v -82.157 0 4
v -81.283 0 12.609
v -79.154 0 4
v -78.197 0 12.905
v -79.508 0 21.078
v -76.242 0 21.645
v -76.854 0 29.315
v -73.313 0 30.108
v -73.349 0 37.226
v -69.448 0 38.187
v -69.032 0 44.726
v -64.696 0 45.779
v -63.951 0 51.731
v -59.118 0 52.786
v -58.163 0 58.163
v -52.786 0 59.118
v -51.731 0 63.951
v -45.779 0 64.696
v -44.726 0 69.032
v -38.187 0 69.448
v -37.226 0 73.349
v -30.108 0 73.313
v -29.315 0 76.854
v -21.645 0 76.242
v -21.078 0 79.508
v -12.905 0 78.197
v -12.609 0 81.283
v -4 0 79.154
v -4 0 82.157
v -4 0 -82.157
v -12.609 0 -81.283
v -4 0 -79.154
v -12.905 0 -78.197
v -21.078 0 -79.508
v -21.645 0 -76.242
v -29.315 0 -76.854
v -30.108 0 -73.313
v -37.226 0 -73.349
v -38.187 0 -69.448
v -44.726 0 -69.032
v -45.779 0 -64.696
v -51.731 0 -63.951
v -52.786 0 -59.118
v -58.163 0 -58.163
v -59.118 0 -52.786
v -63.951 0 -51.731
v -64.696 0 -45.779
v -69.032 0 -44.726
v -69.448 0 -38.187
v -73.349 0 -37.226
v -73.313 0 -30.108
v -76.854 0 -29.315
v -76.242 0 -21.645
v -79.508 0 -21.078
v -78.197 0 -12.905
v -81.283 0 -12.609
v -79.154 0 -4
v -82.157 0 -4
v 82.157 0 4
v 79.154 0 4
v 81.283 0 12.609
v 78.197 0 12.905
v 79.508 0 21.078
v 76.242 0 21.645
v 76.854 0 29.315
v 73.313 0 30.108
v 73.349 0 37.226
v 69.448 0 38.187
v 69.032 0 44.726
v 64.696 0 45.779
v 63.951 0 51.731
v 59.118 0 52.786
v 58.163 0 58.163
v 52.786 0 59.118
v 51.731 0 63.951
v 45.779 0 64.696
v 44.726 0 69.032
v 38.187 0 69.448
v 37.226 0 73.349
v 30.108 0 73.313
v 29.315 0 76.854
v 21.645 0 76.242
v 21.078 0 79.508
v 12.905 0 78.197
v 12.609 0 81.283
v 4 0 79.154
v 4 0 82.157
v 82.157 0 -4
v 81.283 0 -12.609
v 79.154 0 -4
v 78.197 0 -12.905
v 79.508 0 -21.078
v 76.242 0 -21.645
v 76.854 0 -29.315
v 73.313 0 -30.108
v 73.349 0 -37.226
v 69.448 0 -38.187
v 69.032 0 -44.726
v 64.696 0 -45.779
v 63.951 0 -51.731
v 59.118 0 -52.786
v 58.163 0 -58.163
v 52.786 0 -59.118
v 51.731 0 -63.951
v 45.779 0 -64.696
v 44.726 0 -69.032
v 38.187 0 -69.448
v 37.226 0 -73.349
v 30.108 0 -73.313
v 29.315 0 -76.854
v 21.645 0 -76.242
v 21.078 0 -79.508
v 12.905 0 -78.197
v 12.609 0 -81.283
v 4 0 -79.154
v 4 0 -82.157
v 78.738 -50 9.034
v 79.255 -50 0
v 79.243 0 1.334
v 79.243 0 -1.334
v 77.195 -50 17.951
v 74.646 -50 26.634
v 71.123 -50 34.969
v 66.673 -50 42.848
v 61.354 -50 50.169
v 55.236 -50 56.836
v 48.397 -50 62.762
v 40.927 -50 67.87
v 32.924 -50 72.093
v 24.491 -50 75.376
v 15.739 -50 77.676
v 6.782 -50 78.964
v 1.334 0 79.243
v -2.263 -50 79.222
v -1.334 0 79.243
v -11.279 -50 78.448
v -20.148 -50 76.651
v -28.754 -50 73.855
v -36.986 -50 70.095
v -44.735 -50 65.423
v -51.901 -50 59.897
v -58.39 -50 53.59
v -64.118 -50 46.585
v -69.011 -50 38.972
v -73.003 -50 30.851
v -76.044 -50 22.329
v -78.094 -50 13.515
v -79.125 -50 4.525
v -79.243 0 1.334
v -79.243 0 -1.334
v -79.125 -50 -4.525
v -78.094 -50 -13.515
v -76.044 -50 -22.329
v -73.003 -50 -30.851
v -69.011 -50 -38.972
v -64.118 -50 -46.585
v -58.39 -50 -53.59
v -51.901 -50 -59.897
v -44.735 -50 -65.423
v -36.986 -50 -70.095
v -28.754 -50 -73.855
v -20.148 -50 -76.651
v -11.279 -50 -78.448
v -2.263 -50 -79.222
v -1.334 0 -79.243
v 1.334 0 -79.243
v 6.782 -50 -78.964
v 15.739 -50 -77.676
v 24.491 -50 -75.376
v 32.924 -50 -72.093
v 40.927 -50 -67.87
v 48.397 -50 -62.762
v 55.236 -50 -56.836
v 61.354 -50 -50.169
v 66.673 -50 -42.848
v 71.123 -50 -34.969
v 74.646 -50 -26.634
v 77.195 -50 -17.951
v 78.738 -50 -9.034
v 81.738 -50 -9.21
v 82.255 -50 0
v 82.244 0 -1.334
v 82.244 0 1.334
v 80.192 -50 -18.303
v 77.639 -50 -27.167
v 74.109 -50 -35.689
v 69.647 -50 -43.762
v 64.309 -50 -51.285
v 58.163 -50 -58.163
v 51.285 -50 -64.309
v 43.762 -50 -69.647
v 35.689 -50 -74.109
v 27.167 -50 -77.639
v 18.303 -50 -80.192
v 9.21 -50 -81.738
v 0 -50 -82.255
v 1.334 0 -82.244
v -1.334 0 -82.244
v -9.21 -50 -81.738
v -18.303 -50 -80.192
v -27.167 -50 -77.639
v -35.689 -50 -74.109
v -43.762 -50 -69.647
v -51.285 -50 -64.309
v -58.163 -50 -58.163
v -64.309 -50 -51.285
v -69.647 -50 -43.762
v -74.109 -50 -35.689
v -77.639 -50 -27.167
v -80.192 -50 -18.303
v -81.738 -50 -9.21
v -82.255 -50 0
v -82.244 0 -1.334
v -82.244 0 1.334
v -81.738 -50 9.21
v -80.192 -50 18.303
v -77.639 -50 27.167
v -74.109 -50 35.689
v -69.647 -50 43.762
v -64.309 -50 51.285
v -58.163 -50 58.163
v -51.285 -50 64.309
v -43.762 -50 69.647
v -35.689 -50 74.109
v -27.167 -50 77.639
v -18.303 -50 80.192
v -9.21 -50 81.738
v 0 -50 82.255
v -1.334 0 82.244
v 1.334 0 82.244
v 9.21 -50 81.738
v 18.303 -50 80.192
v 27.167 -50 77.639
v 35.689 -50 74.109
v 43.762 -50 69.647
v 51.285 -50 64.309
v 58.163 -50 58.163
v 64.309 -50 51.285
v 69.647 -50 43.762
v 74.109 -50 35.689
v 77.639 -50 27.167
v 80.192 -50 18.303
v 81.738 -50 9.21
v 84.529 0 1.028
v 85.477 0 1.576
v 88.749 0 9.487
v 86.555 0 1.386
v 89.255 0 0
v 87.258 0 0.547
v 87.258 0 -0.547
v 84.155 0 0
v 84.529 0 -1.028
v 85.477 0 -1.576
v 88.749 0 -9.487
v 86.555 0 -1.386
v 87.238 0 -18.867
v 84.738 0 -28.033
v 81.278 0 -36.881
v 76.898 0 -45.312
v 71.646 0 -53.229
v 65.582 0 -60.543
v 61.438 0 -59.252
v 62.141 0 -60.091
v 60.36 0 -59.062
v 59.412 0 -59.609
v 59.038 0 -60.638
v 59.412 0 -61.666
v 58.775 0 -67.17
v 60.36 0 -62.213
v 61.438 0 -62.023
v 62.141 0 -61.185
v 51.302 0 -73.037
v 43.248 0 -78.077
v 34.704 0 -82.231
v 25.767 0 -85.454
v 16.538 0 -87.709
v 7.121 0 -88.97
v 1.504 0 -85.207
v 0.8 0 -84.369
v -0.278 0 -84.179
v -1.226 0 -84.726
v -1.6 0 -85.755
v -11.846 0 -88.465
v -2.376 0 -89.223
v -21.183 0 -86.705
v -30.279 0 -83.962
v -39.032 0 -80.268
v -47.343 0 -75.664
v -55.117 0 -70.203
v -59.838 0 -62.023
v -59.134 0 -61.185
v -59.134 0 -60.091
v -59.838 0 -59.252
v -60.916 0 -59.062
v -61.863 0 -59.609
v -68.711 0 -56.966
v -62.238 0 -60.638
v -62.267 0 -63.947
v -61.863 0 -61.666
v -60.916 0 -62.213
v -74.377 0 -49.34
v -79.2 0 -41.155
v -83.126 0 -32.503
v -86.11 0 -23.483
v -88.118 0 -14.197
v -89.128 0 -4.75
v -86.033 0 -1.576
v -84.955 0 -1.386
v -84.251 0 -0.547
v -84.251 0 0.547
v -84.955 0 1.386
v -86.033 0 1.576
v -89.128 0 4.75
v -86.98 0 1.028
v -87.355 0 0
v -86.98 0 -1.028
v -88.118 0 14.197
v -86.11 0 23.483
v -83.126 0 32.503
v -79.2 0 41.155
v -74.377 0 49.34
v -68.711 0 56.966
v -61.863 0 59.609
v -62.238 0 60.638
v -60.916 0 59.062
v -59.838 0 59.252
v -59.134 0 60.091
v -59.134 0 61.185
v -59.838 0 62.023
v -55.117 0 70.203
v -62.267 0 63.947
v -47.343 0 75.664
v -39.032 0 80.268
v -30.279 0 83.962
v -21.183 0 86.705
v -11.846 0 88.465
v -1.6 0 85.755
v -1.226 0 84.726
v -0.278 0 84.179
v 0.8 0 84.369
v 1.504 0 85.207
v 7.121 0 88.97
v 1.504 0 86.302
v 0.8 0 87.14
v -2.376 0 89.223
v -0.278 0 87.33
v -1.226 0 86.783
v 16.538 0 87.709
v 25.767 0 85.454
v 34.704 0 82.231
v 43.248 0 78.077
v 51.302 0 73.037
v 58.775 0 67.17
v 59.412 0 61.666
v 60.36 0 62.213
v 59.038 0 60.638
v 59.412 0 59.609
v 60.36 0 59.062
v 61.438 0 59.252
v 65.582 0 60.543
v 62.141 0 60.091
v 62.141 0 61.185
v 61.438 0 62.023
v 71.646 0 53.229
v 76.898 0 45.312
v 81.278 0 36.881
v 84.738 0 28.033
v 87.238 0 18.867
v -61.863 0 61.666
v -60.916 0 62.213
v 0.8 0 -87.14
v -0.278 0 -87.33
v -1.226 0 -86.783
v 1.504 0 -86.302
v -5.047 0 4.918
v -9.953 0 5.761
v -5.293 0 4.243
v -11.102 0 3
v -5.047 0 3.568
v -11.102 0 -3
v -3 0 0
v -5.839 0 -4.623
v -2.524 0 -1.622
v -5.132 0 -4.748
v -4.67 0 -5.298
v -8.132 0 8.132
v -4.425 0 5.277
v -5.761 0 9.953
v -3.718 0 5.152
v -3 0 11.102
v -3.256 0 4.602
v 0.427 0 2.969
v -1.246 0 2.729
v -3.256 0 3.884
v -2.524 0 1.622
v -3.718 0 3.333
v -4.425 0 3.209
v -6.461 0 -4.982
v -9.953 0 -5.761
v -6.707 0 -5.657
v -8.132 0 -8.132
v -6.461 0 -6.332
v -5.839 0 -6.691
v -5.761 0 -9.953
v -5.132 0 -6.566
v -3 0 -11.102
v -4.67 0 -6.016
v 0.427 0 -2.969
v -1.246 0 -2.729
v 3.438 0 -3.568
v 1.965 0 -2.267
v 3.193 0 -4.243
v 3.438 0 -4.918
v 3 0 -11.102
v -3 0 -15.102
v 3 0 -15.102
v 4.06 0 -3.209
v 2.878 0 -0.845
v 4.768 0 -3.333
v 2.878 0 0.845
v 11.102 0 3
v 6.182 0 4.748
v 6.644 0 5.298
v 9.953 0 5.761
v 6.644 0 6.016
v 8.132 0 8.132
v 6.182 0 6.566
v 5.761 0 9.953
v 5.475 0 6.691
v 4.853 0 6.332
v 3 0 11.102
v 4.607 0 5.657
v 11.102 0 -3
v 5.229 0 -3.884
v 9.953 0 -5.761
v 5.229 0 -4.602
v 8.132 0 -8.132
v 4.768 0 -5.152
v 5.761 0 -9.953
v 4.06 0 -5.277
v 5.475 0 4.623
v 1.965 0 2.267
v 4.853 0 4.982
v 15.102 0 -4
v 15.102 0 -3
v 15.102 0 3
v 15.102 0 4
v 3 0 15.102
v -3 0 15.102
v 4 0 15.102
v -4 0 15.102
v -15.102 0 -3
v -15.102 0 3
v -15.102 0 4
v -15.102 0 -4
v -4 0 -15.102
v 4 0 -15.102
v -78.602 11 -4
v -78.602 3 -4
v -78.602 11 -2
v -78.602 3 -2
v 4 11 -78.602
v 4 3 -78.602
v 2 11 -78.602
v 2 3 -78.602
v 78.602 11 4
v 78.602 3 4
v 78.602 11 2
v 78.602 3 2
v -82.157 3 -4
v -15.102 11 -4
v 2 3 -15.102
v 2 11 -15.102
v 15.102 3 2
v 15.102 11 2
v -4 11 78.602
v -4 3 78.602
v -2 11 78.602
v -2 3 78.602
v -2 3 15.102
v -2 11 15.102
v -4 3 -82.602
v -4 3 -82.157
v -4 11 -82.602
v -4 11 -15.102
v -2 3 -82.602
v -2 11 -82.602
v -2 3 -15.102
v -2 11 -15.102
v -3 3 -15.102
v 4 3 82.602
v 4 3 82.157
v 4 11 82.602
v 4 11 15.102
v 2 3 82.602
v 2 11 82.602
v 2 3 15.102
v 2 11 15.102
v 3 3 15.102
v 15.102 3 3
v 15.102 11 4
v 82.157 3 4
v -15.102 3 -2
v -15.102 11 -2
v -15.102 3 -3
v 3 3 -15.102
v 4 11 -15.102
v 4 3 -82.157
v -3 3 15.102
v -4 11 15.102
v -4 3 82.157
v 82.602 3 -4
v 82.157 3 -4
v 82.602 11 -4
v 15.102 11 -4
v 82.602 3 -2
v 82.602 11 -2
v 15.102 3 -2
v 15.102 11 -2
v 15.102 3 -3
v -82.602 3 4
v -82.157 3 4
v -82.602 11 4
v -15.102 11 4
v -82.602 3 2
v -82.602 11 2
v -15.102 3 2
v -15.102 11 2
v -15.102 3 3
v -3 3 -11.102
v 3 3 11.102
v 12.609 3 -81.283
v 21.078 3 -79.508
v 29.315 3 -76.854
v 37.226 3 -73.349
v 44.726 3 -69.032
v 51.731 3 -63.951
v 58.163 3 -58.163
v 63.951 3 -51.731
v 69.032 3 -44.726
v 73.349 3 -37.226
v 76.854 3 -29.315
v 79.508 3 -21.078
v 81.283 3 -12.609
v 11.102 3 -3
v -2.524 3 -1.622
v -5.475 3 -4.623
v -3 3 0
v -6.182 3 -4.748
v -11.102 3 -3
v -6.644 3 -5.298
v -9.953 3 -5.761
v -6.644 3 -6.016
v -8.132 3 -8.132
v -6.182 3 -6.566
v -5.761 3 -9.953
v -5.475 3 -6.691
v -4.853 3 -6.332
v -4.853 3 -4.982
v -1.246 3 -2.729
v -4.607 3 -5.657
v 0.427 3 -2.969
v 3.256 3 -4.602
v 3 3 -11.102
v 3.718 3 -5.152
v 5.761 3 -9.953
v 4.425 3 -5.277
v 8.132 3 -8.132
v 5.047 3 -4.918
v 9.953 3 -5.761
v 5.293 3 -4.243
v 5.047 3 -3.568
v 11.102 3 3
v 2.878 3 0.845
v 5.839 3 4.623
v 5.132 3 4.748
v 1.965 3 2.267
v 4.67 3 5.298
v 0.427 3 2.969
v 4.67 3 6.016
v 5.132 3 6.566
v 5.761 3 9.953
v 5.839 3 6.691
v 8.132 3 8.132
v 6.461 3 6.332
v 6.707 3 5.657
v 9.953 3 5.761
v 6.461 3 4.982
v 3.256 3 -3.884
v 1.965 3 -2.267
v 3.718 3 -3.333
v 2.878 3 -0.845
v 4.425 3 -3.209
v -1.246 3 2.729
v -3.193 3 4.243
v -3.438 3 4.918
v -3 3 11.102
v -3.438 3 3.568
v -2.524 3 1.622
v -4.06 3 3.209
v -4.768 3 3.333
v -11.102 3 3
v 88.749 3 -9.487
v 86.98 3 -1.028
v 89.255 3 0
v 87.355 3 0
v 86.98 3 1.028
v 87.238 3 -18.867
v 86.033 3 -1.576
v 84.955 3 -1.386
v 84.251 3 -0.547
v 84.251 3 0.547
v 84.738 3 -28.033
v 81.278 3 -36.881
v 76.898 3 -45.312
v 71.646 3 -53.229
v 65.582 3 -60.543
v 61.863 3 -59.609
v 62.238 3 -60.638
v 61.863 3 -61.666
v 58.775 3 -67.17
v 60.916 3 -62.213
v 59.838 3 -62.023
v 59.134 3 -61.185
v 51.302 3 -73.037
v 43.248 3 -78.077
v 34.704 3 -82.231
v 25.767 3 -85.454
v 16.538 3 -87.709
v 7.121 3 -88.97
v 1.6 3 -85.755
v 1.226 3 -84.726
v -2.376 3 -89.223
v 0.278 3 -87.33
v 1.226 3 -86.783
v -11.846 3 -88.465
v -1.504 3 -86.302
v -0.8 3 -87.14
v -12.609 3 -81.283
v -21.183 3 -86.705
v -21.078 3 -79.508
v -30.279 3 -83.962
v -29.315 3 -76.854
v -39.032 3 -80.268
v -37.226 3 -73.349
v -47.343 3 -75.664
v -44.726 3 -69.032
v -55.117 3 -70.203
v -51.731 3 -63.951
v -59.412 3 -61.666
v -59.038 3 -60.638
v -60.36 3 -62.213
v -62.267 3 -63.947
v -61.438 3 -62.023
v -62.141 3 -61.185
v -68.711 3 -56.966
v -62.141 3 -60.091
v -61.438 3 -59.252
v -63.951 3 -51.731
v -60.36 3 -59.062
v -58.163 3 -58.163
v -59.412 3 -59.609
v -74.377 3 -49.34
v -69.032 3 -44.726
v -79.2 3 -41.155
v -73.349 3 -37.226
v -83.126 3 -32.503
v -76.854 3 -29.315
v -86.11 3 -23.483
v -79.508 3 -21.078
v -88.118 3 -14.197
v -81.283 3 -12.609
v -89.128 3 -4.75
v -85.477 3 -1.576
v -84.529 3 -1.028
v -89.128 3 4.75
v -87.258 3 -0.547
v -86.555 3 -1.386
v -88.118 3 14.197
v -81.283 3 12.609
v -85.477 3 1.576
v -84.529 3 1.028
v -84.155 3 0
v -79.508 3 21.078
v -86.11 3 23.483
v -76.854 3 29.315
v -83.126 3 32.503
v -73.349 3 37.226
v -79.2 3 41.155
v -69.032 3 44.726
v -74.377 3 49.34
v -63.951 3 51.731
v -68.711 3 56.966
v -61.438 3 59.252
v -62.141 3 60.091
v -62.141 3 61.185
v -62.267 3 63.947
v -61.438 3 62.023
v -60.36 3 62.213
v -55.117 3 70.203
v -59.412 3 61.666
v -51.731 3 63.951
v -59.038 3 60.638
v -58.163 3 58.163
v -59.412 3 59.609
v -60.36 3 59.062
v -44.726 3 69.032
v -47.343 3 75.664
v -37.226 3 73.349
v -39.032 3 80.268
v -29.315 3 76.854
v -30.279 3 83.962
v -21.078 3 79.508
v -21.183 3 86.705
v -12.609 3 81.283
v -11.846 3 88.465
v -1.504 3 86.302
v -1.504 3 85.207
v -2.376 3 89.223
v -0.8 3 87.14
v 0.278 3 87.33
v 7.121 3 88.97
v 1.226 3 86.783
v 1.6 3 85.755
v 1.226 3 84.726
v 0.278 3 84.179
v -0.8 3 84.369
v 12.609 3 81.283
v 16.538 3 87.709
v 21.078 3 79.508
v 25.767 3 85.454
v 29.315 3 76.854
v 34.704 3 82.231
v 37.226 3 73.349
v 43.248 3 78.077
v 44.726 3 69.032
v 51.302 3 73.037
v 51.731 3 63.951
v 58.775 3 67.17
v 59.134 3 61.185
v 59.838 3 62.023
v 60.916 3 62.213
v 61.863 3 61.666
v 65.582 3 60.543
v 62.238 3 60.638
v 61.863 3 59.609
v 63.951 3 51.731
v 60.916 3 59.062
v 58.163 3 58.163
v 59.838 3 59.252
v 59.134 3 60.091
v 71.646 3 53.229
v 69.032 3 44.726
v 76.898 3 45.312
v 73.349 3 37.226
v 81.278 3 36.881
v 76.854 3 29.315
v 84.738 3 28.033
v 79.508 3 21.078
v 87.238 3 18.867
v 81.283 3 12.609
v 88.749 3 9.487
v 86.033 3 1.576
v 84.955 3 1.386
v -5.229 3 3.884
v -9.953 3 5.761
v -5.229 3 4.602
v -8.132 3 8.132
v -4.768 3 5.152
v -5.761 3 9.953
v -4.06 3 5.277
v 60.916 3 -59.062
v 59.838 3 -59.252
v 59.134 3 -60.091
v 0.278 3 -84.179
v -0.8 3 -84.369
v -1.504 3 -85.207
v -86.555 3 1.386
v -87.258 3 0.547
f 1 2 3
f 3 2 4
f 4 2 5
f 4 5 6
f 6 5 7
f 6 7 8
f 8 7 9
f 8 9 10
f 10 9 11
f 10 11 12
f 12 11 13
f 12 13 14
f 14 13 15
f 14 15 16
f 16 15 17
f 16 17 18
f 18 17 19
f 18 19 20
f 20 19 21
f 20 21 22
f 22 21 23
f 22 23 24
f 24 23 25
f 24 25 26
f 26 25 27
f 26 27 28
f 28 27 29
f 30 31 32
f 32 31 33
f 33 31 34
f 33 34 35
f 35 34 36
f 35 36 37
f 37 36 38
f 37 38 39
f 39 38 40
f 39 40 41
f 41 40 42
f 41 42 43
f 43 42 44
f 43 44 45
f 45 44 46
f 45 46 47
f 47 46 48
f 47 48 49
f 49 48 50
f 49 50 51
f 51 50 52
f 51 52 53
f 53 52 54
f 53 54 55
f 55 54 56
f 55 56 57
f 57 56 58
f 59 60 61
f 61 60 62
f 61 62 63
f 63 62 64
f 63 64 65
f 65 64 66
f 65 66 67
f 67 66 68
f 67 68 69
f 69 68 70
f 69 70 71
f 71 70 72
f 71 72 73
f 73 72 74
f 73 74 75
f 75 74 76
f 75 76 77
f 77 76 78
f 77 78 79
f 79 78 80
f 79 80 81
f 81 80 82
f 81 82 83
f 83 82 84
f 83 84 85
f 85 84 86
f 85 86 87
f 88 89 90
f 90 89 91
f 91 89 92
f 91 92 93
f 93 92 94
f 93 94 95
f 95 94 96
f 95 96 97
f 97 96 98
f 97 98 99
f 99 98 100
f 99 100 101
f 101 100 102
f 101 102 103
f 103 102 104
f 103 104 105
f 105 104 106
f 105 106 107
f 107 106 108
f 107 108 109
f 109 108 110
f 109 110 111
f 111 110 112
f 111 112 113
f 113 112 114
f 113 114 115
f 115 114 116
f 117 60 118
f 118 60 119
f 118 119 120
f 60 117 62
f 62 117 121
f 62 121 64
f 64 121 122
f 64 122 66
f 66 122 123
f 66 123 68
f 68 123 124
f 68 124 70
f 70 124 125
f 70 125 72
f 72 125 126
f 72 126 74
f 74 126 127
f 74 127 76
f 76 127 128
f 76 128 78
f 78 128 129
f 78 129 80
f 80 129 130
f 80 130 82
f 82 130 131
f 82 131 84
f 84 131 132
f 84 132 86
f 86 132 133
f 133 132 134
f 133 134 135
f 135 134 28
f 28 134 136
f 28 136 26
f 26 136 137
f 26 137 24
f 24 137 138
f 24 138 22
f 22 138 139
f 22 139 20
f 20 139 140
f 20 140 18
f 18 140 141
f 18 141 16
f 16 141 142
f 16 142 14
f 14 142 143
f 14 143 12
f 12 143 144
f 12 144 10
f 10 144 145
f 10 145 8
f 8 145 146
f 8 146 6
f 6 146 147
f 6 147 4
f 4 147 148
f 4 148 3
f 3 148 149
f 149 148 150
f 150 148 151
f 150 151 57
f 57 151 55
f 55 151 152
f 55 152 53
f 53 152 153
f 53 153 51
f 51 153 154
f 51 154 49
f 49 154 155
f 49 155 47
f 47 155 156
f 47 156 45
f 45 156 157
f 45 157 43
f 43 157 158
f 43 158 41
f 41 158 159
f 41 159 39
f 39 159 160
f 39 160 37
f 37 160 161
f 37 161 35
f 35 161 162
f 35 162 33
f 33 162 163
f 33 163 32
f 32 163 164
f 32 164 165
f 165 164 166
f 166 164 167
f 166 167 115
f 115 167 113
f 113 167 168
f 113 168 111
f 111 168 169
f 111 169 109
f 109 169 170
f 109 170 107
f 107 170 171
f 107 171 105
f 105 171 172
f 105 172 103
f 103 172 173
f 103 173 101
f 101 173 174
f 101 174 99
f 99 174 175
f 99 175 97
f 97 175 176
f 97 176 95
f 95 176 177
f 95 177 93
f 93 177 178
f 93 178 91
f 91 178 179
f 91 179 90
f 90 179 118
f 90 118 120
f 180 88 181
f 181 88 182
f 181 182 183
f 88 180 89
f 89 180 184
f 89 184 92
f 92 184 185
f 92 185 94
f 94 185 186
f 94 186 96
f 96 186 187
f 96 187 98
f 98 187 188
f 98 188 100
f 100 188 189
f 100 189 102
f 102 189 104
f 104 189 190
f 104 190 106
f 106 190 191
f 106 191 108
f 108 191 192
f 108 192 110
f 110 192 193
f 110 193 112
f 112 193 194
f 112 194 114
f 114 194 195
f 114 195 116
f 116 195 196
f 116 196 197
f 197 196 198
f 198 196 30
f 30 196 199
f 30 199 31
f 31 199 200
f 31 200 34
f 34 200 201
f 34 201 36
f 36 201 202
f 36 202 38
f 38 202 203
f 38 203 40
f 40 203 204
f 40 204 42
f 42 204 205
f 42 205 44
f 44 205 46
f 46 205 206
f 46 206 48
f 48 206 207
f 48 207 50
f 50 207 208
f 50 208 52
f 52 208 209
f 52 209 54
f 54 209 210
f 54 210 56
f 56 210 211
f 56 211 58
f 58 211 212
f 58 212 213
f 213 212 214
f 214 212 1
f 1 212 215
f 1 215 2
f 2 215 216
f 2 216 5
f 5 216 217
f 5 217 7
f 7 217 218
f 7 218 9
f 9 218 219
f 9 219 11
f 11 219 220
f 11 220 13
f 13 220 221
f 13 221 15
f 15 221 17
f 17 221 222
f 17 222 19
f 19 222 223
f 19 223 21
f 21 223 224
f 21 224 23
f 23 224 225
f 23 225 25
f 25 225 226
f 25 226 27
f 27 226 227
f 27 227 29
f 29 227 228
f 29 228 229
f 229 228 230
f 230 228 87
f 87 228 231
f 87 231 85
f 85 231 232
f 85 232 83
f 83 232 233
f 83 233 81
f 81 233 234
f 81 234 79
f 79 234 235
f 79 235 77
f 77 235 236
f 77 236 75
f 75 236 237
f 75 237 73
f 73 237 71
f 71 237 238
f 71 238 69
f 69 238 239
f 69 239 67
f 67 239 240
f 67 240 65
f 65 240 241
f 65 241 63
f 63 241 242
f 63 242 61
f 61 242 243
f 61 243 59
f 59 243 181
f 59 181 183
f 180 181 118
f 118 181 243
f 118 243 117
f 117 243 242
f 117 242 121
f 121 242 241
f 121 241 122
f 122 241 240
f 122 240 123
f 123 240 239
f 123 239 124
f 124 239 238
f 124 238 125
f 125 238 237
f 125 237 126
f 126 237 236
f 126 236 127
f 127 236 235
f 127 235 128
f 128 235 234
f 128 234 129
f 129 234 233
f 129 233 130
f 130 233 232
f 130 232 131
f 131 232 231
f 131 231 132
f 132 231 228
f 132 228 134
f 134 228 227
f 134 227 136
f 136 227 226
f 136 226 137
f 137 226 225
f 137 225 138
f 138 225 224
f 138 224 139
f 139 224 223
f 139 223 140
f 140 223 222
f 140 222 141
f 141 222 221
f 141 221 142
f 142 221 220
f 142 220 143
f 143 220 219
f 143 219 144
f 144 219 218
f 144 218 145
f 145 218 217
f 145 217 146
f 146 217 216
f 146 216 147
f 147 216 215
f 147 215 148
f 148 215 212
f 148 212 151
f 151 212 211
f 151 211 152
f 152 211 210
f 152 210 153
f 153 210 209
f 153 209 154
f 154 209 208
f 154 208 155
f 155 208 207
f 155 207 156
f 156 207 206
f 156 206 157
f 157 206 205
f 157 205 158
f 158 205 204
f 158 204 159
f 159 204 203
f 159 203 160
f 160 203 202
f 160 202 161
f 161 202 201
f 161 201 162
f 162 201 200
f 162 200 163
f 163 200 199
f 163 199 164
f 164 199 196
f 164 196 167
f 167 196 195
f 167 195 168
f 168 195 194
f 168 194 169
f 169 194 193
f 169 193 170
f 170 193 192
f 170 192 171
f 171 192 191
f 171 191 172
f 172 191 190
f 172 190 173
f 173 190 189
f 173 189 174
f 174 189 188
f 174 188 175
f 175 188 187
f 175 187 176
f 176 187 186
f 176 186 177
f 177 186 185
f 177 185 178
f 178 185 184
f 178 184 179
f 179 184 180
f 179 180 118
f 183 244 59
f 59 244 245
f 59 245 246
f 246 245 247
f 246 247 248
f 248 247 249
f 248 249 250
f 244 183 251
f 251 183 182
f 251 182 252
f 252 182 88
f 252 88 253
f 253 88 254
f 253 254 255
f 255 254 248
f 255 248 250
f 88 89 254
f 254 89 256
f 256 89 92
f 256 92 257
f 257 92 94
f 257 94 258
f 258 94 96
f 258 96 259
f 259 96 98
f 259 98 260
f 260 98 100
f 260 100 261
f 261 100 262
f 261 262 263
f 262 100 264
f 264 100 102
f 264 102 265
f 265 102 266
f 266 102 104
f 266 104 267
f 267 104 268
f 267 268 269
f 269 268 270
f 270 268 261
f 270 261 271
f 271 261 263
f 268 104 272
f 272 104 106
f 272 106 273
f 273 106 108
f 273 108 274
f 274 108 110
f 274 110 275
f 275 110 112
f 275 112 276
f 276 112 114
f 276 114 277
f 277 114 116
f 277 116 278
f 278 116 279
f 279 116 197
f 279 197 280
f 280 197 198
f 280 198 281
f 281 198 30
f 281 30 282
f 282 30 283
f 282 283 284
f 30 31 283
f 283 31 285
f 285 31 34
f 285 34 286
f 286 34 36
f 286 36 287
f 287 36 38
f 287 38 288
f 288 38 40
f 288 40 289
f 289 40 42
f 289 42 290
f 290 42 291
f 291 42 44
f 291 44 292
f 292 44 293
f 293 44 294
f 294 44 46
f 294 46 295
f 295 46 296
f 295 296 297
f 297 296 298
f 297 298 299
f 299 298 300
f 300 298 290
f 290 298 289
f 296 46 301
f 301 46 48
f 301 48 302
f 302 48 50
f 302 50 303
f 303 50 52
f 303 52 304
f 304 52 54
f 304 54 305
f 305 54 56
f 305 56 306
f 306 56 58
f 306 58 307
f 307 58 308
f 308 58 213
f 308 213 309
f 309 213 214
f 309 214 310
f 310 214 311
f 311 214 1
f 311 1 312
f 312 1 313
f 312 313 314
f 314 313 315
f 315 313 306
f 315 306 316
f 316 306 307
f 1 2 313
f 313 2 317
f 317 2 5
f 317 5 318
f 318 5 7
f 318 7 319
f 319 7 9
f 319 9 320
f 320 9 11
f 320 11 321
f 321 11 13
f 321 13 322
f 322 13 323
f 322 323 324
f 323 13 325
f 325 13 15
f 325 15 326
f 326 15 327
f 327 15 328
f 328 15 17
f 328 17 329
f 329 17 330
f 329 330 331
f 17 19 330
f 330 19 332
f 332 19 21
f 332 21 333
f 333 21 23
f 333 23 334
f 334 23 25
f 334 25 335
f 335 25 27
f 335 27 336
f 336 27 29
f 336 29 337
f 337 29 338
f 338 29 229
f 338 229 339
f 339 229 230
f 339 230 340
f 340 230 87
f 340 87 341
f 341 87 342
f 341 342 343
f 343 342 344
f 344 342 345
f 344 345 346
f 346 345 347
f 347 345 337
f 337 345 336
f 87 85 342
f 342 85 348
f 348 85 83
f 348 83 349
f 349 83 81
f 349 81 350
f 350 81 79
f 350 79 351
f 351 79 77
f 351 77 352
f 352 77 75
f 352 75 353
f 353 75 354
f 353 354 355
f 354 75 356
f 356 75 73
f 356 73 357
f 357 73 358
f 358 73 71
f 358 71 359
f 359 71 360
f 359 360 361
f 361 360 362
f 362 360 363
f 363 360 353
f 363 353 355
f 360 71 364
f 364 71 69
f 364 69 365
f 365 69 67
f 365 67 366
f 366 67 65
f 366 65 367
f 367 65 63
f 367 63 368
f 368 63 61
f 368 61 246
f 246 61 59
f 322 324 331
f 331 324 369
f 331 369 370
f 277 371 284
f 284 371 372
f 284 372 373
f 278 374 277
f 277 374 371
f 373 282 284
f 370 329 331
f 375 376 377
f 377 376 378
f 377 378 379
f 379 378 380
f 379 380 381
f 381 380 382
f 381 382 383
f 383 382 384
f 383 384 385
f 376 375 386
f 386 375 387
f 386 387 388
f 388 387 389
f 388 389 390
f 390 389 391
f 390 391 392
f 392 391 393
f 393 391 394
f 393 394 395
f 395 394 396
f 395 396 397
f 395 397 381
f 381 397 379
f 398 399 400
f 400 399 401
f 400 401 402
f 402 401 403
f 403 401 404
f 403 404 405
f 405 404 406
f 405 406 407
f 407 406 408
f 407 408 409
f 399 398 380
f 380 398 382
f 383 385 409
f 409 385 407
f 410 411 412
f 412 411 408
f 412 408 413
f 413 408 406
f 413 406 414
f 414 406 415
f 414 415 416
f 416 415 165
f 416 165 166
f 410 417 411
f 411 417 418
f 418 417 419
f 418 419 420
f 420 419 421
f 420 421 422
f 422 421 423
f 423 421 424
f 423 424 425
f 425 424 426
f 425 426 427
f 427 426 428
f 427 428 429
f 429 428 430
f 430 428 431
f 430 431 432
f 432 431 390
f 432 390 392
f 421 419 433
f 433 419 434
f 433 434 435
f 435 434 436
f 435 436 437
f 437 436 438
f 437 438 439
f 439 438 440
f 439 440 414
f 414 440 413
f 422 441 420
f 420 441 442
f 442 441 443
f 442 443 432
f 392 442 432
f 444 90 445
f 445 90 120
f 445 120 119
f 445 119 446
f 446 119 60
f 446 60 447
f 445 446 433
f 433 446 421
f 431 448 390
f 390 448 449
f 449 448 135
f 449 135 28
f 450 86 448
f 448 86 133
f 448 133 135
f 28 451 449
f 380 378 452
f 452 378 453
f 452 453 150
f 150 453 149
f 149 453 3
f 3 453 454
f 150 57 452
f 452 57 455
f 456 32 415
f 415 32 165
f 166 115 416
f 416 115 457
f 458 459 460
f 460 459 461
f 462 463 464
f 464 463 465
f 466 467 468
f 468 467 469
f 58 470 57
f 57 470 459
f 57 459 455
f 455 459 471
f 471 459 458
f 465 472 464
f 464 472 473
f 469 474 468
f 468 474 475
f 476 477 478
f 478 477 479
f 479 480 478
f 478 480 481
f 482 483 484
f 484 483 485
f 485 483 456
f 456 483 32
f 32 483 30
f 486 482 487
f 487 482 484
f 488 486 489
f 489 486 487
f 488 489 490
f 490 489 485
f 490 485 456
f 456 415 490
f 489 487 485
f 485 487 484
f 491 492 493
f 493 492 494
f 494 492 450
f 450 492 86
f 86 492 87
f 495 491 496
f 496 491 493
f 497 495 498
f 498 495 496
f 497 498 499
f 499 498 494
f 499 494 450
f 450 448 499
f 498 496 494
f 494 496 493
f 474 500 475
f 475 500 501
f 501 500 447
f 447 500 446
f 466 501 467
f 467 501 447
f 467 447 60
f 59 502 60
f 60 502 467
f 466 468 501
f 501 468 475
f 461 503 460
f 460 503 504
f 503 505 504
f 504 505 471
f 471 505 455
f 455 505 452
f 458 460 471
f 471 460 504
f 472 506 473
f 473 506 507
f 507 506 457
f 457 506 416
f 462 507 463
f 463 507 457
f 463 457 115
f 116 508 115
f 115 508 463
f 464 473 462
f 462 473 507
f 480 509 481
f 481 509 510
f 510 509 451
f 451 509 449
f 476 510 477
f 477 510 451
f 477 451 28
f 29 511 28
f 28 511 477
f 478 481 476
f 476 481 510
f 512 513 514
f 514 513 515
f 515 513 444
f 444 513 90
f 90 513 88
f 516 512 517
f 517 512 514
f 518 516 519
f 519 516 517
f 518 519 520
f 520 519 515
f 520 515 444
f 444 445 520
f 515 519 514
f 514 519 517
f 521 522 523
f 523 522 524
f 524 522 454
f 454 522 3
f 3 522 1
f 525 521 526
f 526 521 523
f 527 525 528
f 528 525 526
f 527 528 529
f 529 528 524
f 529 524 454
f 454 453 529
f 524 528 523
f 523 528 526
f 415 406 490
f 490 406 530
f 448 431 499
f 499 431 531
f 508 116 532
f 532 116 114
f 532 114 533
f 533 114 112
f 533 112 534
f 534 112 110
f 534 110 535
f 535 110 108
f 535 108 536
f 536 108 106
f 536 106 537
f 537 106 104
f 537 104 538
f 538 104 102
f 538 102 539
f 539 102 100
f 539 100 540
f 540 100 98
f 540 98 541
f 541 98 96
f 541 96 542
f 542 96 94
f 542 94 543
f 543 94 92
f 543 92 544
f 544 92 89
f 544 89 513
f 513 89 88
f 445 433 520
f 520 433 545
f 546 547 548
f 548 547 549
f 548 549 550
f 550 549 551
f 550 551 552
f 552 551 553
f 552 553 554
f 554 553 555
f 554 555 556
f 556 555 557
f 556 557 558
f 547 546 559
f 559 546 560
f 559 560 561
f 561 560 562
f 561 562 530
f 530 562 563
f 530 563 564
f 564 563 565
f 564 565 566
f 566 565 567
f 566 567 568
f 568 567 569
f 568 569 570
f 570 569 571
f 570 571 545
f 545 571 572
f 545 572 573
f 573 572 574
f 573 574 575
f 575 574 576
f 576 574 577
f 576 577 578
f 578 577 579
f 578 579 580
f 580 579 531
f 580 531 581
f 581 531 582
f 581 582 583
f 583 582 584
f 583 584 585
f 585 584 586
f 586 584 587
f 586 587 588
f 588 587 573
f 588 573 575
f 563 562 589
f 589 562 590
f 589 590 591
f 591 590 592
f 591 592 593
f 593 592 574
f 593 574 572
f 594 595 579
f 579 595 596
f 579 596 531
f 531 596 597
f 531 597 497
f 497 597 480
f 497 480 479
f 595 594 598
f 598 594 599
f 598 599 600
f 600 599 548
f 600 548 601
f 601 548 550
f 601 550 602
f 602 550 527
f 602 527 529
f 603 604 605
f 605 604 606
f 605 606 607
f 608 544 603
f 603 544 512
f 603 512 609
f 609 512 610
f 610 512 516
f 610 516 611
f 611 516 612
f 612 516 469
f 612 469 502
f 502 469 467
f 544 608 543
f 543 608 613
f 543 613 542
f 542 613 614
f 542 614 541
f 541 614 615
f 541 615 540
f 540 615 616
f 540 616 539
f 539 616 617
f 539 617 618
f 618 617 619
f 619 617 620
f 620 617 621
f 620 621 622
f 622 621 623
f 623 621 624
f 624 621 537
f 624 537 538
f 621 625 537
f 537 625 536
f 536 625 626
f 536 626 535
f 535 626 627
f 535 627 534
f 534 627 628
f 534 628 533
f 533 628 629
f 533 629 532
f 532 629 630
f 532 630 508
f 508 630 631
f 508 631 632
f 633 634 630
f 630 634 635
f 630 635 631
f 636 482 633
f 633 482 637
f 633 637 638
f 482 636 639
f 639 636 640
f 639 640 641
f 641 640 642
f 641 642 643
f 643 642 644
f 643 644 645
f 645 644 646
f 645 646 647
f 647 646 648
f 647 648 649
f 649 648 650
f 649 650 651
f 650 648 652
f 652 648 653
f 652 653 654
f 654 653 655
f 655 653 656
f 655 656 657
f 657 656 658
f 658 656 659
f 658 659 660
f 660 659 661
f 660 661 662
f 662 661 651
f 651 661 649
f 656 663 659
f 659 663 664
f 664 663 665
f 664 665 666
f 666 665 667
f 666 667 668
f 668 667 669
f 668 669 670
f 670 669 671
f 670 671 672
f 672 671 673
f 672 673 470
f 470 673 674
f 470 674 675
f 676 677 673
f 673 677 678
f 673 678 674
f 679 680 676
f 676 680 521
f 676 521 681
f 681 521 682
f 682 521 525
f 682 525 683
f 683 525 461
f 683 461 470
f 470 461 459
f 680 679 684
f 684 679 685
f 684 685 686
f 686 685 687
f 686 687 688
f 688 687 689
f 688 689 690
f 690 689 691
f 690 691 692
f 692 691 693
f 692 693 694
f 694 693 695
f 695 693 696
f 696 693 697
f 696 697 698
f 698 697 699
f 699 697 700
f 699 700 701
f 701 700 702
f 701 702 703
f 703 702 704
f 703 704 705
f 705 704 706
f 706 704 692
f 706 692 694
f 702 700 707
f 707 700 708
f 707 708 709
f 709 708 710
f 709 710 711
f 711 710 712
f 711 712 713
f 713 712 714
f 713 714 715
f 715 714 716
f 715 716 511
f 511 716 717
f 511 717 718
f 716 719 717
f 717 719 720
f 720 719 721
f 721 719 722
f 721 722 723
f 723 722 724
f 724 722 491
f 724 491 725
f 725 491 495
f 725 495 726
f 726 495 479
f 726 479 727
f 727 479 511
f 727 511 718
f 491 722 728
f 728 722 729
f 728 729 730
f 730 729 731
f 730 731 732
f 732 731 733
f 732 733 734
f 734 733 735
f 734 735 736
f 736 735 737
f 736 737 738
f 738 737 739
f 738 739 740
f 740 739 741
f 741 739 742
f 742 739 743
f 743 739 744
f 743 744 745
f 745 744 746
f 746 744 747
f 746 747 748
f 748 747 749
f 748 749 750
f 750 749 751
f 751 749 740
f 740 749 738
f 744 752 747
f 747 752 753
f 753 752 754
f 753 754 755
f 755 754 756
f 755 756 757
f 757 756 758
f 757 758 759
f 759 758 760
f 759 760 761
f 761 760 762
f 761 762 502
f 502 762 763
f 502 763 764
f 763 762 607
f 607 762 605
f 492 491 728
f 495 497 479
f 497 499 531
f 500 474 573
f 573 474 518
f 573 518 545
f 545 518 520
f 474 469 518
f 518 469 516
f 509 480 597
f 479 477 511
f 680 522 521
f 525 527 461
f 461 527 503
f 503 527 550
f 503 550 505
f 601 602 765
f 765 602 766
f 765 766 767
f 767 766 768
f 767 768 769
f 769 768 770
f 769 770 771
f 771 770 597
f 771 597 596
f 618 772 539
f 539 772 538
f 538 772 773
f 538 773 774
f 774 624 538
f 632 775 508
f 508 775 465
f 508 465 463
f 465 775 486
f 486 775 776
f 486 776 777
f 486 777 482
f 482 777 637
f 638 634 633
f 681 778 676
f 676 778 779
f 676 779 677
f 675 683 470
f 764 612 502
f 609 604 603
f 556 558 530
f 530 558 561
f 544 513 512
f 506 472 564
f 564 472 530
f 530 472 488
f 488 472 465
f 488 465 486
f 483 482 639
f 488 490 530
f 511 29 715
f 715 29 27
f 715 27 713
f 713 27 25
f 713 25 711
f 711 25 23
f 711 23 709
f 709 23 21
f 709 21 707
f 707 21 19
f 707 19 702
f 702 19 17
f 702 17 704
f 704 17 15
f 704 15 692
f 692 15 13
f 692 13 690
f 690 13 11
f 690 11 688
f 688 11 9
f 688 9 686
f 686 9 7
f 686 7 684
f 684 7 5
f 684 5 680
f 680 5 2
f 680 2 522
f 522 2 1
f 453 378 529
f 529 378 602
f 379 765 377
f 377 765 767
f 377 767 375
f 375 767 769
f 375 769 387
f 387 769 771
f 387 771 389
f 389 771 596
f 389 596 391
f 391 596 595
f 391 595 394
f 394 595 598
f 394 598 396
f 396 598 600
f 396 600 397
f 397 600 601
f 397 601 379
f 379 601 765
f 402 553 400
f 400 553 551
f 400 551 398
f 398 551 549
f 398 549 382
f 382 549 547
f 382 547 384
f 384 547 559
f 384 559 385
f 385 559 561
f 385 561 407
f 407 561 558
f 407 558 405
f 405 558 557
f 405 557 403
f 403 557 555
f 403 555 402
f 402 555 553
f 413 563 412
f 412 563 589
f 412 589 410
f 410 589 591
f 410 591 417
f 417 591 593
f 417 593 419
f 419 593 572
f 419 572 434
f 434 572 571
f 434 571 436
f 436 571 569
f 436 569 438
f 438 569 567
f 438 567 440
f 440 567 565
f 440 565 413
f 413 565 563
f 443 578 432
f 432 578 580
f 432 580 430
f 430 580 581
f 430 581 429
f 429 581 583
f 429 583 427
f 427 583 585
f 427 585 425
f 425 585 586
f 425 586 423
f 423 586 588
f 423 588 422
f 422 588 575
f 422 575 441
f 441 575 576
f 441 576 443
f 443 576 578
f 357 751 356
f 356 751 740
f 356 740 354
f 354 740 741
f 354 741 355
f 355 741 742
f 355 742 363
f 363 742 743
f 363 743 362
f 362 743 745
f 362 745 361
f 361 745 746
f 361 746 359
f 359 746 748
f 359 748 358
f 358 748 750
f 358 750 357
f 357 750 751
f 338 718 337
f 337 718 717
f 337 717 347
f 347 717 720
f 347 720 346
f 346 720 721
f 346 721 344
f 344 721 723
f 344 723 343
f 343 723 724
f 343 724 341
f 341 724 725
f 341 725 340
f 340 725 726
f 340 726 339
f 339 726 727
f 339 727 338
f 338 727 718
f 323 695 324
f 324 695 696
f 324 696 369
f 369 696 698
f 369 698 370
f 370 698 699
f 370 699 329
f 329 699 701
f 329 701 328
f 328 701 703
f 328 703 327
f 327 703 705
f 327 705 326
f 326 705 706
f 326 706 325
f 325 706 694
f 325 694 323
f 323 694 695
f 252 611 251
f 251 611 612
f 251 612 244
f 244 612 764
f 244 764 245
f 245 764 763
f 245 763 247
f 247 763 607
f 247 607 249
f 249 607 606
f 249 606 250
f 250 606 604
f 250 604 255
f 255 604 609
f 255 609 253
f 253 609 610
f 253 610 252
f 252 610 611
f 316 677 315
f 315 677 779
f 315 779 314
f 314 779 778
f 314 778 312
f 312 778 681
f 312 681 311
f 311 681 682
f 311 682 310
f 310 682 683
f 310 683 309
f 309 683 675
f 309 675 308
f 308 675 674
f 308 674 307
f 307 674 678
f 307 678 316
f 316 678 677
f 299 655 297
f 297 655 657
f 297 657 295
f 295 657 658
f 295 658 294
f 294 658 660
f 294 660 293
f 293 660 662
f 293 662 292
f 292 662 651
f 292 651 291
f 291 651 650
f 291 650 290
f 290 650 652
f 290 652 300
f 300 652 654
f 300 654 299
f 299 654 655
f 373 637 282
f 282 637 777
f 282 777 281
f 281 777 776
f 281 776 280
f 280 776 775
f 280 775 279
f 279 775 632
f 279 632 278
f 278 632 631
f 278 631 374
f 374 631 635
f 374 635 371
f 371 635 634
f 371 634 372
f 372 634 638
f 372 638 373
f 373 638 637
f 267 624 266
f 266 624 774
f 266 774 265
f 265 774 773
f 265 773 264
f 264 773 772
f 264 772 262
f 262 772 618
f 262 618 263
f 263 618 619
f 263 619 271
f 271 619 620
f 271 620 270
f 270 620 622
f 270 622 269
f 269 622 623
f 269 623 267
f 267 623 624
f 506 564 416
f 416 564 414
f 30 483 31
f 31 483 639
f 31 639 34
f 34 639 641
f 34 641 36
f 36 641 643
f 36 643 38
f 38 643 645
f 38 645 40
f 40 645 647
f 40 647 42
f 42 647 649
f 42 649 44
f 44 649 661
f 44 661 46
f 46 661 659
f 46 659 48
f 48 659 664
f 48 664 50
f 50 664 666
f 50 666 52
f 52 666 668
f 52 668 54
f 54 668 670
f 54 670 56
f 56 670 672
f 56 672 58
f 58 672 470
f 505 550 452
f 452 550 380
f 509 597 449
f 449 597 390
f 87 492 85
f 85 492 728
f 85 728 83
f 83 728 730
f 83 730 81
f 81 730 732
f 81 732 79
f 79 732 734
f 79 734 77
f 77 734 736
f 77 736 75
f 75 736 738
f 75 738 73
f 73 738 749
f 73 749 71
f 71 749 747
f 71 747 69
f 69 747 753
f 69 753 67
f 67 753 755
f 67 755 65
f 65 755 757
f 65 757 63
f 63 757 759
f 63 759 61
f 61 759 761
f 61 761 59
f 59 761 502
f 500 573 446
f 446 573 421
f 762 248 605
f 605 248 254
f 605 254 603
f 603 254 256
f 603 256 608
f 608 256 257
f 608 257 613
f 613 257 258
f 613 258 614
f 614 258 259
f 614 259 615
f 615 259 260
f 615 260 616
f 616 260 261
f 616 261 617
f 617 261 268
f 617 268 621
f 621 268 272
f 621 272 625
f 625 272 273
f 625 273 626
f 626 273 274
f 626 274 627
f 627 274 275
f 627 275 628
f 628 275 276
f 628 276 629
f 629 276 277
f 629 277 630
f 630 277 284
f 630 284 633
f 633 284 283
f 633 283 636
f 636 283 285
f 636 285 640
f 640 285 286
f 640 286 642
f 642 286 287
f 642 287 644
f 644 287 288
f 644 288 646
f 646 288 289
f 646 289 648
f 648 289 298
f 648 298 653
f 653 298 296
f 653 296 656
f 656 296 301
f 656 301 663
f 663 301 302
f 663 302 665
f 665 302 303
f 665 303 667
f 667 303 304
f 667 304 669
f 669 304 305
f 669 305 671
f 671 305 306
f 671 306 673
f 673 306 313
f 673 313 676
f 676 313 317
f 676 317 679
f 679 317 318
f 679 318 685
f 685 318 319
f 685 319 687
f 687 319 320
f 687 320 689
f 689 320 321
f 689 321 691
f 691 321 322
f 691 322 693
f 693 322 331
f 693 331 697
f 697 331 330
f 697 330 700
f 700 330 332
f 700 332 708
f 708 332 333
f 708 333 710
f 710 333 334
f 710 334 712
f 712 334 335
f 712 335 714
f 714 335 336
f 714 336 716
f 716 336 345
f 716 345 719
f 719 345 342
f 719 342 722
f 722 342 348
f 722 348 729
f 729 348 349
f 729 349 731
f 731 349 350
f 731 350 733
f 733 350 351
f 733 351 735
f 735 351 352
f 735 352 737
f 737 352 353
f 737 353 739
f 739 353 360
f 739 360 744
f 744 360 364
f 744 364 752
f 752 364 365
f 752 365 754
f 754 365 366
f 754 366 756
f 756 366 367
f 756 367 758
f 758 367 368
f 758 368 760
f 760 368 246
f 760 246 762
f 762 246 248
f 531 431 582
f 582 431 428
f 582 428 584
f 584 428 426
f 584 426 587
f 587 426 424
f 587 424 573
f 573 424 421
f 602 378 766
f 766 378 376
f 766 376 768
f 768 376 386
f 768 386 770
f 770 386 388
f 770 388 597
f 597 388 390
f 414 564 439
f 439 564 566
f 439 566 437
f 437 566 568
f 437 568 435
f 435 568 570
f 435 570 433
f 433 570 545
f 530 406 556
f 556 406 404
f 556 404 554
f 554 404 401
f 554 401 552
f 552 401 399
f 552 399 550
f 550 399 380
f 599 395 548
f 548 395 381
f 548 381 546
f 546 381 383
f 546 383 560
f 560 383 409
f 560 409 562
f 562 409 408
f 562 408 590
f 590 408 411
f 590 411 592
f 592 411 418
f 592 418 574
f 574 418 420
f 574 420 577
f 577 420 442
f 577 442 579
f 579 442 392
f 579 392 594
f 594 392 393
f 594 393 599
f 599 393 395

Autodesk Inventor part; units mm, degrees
ref_plane "YZ Plane" through (0, 0, 0) normal (1, 0, 0) x (0, 1, 0)
ref_plane "XZ Plane" through (0, 0, 0) normal (0, 1, 0) x (-1, 0, 0)
ref_plane "XY Plane" through (0, 0, 0) normal (0, 0, 1) x (1, 0, 0)
sketch "Szkic1" plane through (0, 0, 0) normal (0, 1, 0) x (-1, 0, 0)
  circle A0 centre (0, 0) radius 11.5
  circle A1 centre (0, 0) radius 3
  line L0 (6, 8) -> (-6, 8)
  line L1 (-6, 8) -> (-6, -8)
  line L2 (-6, -8) -> (6, -8)
  line L3 (6, -8) -> (6, 8)
  line L4 (6, 8) -> (-6, -8) construction
  line L5 (-6, 8) -> (6, -8) construction
  line L6 (0, 8) -> (6, 0)
  line L7 (6, 0) -> (0, -8)
  line L8 (0, -8) -> (-6, 0)
  line L9 (-6, 0) -> (0, 8)
  dimension "d0" = 23
  dimension "d1" = 6
  dimension "d2" = 16
  dimension "d3" = 12
extrude "Wyciągnięcie proste1" add sketch "Szkic1" along normal blind 3 contours A0 | L3 L6 L0 | L9 L1 L0 | L6 L7 L8 L9 | L3 L2 L7 | L8 L2 L1
sketch "Szkic2" plane through (0, 0, 0) normal (0, -1, 0) x (1, 0, 0)
  circle A0 centre (0, 0) radius 11.5 projected
  line L0 (-11.5, 0) -> (-11.5, -3)
  line L1 (-11.5, -3) -> (-82.2, -3)
  line L2 (-82.2, -3) -> (-82.2, 3)
  line L3 (-82.2, 3) -> (-11.5, 3)
  line L4 (-11.5, 3) -> (-11.5, -3)
  line L5 (-11.5, 3) -> (-11.1018, 3)
  line L6 (-11.5, -3) -> (-11.1018, -3)
  circle A1 centre (0, 0) radius 3 projected
  line L7 (3, -11.5) -> (3, -82.2)
  line L8 (-3, -82.2) -> (-3, -11.5)
  line L9 (3, -11.5) -> (3, -11.1018)
  line L10 (0, -11.5) -> (3, -11.5)
  line L11 (-3, -11.5) -> (-3, -11.1018)
  line L12 (-3, -11.5) -> (3, -11.5)
  line L13 (3, -82.2) -> (-3, -82.2)
  line L14 (11.5, 3) -> (82.2, 3)
  line L15 (82.2, -3) -> (11.5, -3)
  line L16 (11.5, 3) -> (11.1018, 3)
  line L17 (11.5, 0) -> (11.5, 3)
  line L18 (11.5, -3) -> (11.1018, -3)
  line L19 (11.5, -3) -> (11.5, 3)
  line L20 (82.2, 3) -> (82.2, -3)
  line L21 (-3, 11.5) -> (-3, 82.2)
  line L22 (3, 82.2) -> (3, 11.5)
  line L23 (-3, 11.5) -> (-3, 11.1018)
  line L24 (0, 11.5) -> (-3, 11.5)
  line L25 (3, 11.5) -> (3, 11.1018)
  line L26 (3, 11.5) -> (-3, 11.5)
  line L27 (-3, 82.2) -> (3, 82.2)
  circle A2 centre (0, 0) radius 82.2547
  circle A3 centre (0, 0) radius 89.2547
  point P0 (-11.5, 0)
  point P1 (0, -11.5)
  point P2 (11.5, 0)
  point P3 (0, 11.5)
  point P4 (11.5, 0)
  point P5 (11.5, 0)
  point P6 (11.5, 0)
  dimension "d15" = 70.7
  dimension "d17" = 6
  dimension "d18" = 3
  dimension "d21" = 360
  dimension "d23" = 7
extrude "Wyciągnięcie proste2" add sketch "Szkic2" against normal blind 3 contours L19 L18 A0 | A0 L16 L17 | L17 L14 L20 L15 L19 | A0 L26 L25 | L9 L10 A0 | A2 L20 | A0 L23 L24 | L24 L21 L27 L22 L26 | L12 L11 A0 | L10 L7 L13 L8 L12 | L27 A2 | A2 L13 | A0 L4 L5 | L6 L0 A0 | L3 L4 L0 L1 L2 | L2 A2 | A3
sketch "Szkic3" plane through (0, 3, 0) normal (0, 1, 0) x (1, 0, 0)
  line L0 (82.2, 3) -> (11.1018, 3) projected
  circle A0 centre (0, 0) radius 89.2547 projected
  line L1 (0, 89.2547) -> (89.2547, 89.2547)
  line L2 (89.2547, 89.2547) -> (89.2547, 0)
  line L3 (89.2547, 0) -> (0, 0)
  line L4 (0, 0) -> (0, 89.2547)
  circle A1 centre (0, 0) radius 3 projected
  line L5 (0, 0) -> (89.2547, 89.2547)
  circle A2 centre (60.6377, 60.6377) radius 3.5
  arc A3 (82.2, 3) -> (3, 82.2) centre (0, 0) ccw projected
  circle A4 centre (0, 85.7547) radius 3.5
  circle A5 centre (-60.6377, 60.6377) radius 3.5
  circle A6 centre (-85.7547, 0) radius 3.5
  circle A7 centre (-60.6377, -60.6377) radius 3.5
  circle A8 centre (0, -85.7547) radius 3.5
  circle A9 centre (60.6377, -60.6377) radius 3.5
  circle A10 centre (85.7547, 0) radius 3.5
  dimension "d42" = 360
hole "Otwór3" at (60.6377, 3, -60.6377) at (0, 3, -85.7547) at (-60.6377, 3, -60.6377) at (-85.7547, 3, 0) at (85.7547, 3, 0) at (-60.6377, 3, 60.6377) at (0, 3, 85.7547) at (60.6377, 3, 60.6377) direction (0, -1, 0) diameter 3.2 end through all
sketch "Szkic5" plane through (0, 3, 0) normal (0, 1, 0) x (1, 0, 0)
  line L0 (9.8995, -1.4142) -> (1.4142, -9.8995)
  line L1 (1.4142, -9.8995) -> (-9.8995, 1.4142)
  line L2 (-9.8995, 1.4142) -> (-1.4142, 9.8995)
  line L3 (-1.4142, 9.8995) -> (9.8995, -1.4142)
  arc A0 (3, -11.1018) -> (11.1018, -3) centre (0, 0) ccw projected
  arc A1 (-11.1018, -3) -> (-3, -11.1018) centre (0, 0) ccw projected
  line L4 (3, -11.1018) -> (-3, -11.1018)
  line L5 (5.6569, -5.6569) -> (4.2426, 4.2426)
  line L6 (4.2426, 4.2426) -> (-5.6569, 5.6569)
  line L7 (-5.6569, 5.6569) -> (-4.2426, -4.2426)
  line L8 (-4.2426, -4.2426) -> (5.6569, -5.6569)
  dimension "d57" = 45
  dimension "d58" = 12
  dimension "d59" = 16
  dimension "d60" = 6
  dimension "d61" = 8
hole "Otwór4" at (5.6569, 3, 5.6569) at (4.2426, 3, -4.2426) at (-5.6569, 3, -5.6569) at (-4.2426, 3, 4.2426) direction (0, -1, 0) diameter 2.1 end through all
sketch "Szkic6" plane through (0, 3, 0) normal (0, 1, 0) x (1, 0, 0)
  line L0 (-15.1018, 2) -> (-15.1018, 4)
  line L1 (-15.1018, 4) -> (-82.6018, 4)
  line L2 (-82.6018, 4) -> (-82.6018, 2)
  line L3 (-82.6018, 2) -> (-15.1018, 2)
  line L4 (-11.1018, 3) -> (-82.2, 3) projected
  line L5 (-4, -15.1018) -> (-4, -82.6018)
  line L6 (-2, -82.6018) -> (-2, -15.1018)
  line L7 (-4, -82.6018) -> (-2, -82.6018)
  line L8 (-2, -15.1018) -> (-4, -15.1018)
  line L9 (15.1018, -4) -> (82.6018, -4)
  line L10 (82.6018, -2) -> (15.1018, -2)
  line L11 (82.6018, -4) -> (82.6018, -2)
  line L12 (15.1018, -2) -> (15.1018, -4)
  line L13 (4, 15.1018) -> (4, 82.6018)
  line L14 (2, 82.6018) -> (2, 15.1018)
  line L15 (4, 82.6018) -> (2, 82.6018)
  line L16 (2, 15.1018) -> (4, 15.1018)
  line L17 (-82.6018, -2) -> (-82.6018, -4)
  line L18 (-82.6018, -4) -> (-15.1018, -4)
  line L19 (-15.1018, -4) -> (-15.1018, -2)
  line L20 (-15.1018, -2) -> (-82.6018, -2)
  line L21 (-82.2, -3) -> (-11.1018, -3) projected
  line L22 (4, -82.6018) -> (4, -15.1018)
  line L23 (2, -15.1018) -> (2, -82.6018)
  line L24 (2, -82.6018) -> (4, -82.6018)
  line L25 (4, -15.1018) -> (2, -15.1018)
  line L26 (82.6018, 4) -> (15.1018, 4)
  line L27 (15.1018, 2) -> (82.6018, 2)
  line L28 (82.6018, 2) -> (82.6018, 4)
  line L29 (15.1018, 4) -> (15.1018, 2)
  line L30 (-4, 82.6018) -> (-4, 15.1018)
  line L31 (-2, 15.1018) -> (-2, 82.6018)
  line L32 (-2, 82.6018) -> (-4, 82.6018)
  line L33 (-4, 15.1018) -> (-2, 15.1018)
  point P0 (0, 0)
  point P1 (-3, -82.2)
  point P2 (82.2, -3)
  point P3 (3, 82.2)
  dimension "d69" = 2
  dimension "d70" = 1
  dimension "d71" = 4
  dimension "d72" = 67.5
  dimension "d75" = 360
  dimension "d77" = 1
  dimension "d78" = 2
  dimension "d79" = 67.5
  dimension "d80" = 4
  dimension "d83" = 360
extrude "Wyciągnięcie proste4" add sketch "Szkic6" along normal blind 8 and the other way blind 3
sketch "Szkic7" plane through (-4, 0, 15.1018) normal (-1, 0, 0) x (0, 0, 1)
  line L0 (0, 11) -> (67.5, 11) projected
  line L1 (74.1529, 3) -> (-104.3565, 3) projected
  line L2 (67.5, 11) -> (63.5, 11)
  line L3 (63.5, 11) -> (63.5, 3)
  line L4 (63.5, 3) -> (67.5, 3)
  line L5 (67.5, 3) -> (67.5, 11)
  point P0 (-15.1018, 0)
  dimension "d89" = 4
extrude "Wyciągnięcie proste5" cut sketch "Szkic7" against normal blind 2
pattern_circular "Szyk kołowy1" count 4 over 360 about axis through (0, 0, 0) along (0, 1, 0) of "Wyciągnięcie proste5"
sketch "Szkic8" plane through (0, 0, 0) normal (0, -1, 0) x (1, 0, 0)
  circle A0 centre (0, 0) radius 79.2547
  circle A1 centre (0, 0) radius 3 projected
  circle A2 centre (0, 0) radius 82.2547
  dimension "d95" = 164.5094
  dimension "d96" = 158.5094
extrude "Wyciągnięcie proste6" add sketch "Szkic8" along normal blind 50 contours A2
sketch "Szkic9" plane through (0, 3, 0) normal (0, 1, 0) x (1, 0, 0)
  circle A0 centre (0, 0) radius 3 projected
  circle A1 centre (0, 0) radius 79.2547 projected
  circle A2 centre (0, 0) radius 82.2547
  circle A3 centre (0, 0) radius 79.2547
  line L0 (-4, -82.1574) -> (-4, -79.1537) projected
  line L1 (-4, -82.1574) -> (-4, -79.1537)
  line L2 (-82.1574, 4) -> (-78.6018, 4) projected
  line L3 (-82.1574, 4) -> (-78.6018, 4)
  line L4 (-78.6018, 4) -> (-79.1537, 4)
  line L5 (4, 79.1537) -> (4, 15.1018) projected
  line L6 (4, 79.1537) -> (4, 82.1574)
  line L7 (79.1537, -4) -> (-82.1574, -4)
  line L8 (78.6018, -4) -> (78.6018, -2) projected
  arc A4 (-82.1574, -4) -> (-4, -82.1574) centre (0, 0) ccw projected
  line L9 (-6.4282, -82.0032) -> (-6.3234, -79.0015)
  point P0 (-6.3344, -79.0012)
  dimension "d100" = 3
  dimension "d101" = 2
equation "\"d77\" = d70"
equation "\"d78\" = d69"
equation "\"d79\" = d72"
equation "\"d80\" = d71"
properties part number "rama-silnik-dol-2"
